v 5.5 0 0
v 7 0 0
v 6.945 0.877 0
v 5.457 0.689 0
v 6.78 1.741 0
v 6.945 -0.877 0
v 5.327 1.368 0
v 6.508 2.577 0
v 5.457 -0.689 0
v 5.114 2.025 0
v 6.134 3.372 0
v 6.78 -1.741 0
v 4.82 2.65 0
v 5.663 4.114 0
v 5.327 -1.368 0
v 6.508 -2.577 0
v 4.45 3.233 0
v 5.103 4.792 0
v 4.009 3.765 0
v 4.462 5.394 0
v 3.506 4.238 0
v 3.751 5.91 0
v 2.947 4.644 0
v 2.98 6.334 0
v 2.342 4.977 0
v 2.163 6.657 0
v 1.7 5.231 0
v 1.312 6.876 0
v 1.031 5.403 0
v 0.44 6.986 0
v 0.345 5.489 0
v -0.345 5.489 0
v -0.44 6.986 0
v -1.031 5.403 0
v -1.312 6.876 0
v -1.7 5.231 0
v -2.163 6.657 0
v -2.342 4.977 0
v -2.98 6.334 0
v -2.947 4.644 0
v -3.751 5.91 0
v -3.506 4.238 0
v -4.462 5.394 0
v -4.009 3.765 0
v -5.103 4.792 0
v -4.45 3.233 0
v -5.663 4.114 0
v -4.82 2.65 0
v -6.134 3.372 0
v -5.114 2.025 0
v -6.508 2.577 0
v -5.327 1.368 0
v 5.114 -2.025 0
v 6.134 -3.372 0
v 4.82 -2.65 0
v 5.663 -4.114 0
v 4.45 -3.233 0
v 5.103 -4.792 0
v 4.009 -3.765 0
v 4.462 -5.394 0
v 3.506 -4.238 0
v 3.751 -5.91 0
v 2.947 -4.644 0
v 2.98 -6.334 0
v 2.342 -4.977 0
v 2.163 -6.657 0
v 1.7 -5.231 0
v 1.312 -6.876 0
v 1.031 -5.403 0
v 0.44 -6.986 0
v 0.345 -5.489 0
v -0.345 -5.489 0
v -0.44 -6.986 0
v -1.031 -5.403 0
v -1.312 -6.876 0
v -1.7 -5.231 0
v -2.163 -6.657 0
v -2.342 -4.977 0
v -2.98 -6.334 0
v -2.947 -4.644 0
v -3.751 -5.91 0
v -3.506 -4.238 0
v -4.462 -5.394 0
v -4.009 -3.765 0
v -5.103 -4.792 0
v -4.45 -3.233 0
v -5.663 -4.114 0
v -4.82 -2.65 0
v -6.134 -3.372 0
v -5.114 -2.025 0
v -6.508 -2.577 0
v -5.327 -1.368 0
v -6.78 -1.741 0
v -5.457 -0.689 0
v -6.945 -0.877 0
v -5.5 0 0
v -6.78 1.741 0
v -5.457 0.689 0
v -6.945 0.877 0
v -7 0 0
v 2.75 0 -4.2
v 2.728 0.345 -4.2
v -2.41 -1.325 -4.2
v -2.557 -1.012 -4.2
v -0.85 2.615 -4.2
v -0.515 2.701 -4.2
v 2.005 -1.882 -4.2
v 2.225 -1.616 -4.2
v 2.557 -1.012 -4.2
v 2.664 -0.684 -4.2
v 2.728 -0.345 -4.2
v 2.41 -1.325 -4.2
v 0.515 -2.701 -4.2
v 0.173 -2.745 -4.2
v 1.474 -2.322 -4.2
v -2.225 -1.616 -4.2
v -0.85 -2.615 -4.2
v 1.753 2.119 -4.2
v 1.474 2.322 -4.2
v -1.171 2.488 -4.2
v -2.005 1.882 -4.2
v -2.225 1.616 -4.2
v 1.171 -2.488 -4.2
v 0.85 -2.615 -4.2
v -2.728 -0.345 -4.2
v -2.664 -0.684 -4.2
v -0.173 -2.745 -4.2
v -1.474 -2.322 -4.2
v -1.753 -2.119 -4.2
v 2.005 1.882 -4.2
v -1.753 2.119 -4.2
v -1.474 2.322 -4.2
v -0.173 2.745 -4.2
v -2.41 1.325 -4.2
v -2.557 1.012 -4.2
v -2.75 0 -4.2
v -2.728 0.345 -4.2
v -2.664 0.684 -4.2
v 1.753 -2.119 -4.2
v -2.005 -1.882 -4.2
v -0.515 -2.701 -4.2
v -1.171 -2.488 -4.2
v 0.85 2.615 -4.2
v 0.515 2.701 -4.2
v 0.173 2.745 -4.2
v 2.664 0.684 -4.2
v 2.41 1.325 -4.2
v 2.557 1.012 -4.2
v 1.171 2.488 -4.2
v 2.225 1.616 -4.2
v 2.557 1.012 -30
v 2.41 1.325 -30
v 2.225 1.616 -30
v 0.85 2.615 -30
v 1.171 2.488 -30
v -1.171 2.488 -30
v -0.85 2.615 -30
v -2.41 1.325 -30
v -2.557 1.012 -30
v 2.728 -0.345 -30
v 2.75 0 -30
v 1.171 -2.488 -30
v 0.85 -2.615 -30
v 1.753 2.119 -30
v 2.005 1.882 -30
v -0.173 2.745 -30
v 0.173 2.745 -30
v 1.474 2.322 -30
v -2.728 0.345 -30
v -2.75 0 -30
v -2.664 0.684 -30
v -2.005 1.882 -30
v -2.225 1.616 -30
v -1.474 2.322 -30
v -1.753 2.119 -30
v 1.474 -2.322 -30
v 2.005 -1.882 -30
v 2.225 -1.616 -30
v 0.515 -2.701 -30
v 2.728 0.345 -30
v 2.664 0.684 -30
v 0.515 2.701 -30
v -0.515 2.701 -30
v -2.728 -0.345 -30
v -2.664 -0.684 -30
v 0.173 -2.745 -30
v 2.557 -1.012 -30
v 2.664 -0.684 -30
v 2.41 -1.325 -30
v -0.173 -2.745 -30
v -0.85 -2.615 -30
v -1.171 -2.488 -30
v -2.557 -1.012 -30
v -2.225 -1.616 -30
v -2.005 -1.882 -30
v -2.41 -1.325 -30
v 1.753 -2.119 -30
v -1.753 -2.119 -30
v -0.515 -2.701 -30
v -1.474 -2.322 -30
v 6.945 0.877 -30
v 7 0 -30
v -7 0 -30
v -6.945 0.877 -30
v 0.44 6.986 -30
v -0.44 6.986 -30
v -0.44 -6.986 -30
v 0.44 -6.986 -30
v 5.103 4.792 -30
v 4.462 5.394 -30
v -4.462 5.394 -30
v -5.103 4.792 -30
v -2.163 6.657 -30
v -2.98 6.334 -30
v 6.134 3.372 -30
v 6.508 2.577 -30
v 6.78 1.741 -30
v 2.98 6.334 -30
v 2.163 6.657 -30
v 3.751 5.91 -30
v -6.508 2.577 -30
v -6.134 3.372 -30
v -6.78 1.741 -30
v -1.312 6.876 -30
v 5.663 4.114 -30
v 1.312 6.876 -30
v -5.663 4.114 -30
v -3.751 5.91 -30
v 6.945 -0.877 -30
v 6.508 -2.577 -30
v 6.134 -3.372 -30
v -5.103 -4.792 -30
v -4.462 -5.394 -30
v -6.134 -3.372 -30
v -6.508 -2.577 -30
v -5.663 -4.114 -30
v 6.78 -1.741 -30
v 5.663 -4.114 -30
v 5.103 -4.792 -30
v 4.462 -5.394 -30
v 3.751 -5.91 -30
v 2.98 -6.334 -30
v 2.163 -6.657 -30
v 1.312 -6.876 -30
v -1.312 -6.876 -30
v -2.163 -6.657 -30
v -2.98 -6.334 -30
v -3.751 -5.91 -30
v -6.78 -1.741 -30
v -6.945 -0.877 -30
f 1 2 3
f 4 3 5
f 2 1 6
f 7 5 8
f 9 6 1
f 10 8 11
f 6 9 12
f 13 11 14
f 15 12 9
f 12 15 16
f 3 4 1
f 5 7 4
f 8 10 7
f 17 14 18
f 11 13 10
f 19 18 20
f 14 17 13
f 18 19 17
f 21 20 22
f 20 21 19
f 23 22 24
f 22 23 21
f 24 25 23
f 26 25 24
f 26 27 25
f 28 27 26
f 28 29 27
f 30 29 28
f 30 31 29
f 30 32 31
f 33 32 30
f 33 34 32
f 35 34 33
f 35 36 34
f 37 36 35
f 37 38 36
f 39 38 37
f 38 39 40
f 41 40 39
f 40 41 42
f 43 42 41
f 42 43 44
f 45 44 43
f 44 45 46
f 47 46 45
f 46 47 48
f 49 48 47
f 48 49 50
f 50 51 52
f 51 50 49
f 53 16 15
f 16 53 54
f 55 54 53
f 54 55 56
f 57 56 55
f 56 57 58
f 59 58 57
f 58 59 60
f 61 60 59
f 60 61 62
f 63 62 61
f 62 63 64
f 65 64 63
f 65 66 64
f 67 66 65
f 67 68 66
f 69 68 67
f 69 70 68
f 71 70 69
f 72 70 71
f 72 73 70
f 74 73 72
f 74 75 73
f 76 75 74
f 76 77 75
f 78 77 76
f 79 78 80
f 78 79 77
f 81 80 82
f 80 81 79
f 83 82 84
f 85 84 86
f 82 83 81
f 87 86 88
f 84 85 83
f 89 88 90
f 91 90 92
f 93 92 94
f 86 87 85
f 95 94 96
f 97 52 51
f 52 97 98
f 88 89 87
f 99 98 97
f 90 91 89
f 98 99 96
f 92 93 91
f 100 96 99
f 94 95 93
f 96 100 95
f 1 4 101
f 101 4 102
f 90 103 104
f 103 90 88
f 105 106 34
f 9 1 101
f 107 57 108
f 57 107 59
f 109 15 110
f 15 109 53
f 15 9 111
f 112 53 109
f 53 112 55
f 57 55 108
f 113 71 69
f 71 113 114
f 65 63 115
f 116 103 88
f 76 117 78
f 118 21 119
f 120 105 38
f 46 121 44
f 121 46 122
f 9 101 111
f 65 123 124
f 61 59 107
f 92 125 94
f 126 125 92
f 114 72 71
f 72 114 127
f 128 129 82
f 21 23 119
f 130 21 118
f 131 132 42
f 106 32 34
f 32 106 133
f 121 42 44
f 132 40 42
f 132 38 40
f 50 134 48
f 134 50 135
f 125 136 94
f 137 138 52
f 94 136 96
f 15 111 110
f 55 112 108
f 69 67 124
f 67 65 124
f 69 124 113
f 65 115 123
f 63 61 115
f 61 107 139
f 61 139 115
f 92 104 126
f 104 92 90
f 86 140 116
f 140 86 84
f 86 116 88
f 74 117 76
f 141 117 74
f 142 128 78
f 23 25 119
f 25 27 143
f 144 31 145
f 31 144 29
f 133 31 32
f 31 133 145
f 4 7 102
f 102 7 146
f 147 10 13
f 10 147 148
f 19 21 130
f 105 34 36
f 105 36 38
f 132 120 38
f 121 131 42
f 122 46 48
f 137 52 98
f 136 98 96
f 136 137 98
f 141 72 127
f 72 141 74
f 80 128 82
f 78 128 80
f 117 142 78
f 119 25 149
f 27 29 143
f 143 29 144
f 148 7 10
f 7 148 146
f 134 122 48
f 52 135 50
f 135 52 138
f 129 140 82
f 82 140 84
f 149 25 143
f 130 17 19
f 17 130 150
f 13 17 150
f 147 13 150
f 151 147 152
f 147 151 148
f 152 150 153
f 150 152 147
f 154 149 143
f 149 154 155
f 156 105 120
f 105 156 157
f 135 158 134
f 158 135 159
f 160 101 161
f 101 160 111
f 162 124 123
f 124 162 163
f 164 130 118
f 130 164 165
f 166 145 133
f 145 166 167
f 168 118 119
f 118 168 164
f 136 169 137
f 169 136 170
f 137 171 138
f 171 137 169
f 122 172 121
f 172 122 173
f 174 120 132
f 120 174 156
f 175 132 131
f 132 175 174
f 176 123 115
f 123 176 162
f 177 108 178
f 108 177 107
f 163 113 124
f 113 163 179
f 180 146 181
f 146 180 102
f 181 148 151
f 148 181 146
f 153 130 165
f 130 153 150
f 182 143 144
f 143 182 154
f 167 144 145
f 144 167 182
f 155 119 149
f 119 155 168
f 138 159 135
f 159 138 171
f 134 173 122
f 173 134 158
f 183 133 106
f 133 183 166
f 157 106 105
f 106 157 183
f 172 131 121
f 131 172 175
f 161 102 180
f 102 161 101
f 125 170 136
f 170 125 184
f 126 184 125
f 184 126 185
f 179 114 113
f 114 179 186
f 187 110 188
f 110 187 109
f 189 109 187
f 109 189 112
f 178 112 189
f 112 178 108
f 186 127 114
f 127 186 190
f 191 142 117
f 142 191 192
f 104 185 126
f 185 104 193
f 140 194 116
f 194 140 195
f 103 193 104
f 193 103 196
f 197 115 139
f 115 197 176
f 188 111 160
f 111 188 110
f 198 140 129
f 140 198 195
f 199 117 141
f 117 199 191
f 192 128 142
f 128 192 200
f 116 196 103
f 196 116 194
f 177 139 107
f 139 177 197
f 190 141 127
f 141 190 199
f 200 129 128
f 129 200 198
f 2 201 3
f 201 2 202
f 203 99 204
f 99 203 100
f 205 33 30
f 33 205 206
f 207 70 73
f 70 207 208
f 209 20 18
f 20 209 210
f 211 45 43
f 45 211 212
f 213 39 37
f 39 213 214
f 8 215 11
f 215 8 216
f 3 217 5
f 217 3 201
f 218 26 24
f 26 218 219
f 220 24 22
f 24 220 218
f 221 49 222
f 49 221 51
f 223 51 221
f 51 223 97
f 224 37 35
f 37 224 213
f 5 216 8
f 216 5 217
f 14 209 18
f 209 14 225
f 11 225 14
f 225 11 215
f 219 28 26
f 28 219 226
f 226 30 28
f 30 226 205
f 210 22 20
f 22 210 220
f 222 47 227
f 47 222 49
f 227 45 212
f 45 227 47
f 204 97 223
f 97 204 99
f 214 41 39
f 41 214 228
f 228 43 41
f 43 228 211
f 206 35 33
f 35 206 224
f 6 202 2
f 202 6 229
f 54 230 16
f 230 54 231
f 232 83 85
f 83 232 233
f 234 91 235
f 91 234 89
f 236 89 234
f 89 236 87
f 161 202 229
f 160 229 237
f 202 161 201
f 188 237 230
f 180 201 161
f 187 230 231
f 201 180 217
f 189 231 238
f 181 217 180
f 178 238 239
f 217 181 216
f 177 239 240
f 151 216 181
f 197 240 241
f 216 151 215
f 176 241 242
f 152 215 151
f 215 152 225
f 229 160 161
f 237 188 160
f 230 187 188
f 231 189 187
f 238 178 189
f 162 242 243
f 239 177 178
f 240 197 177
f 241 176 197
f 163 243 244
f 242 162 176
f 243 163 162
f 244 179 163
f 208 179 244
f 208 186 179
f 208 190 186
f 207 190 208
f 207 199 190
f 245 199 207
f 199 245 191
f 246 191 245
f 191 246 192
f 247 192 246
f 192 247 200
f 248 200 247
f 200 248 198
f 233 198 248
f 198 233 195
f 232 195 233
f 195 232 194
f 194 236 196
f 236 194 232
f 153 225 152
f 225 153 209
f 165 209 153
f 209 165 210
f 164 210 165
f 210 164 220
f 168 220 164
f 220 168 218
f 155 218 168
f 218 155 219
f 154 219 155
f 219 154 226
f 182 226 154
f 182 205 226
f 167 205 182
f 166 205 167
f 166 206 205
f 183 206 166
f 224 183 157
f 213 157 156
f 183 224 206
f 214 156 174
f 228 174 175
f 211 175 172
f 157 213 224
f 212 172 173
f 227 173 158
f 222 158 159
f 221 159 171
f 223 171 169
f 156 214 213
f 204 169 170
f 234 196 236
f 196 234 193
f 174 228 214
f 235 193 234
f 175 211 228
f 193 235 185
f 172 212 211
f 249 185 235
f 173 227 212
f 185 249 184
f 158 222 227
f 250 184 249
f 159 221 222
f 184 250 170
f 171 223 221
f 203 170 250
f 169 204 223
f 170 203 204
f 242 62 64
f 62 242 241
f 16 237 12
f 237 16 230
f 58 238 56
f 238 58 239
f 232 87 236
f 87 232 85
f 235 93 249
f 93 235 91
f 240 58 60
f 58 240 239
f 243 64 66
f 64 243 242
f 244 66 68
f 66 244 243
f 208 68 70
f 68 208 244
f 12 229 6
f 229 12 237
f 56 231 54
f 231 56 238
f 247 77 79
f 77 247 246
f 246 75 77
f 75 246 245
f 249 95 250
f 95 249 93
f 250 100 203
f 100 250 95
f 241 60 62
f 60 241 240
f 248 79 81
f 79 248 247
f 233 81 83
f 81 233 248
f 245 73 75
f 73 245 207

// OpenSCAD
$fn = 50;

difference() {
	union() {
		translate(v = [0, 0, -30.0]) {
			cylinder(h = 30, r = 7.0);
		}
	}
	union() {
		translate(v = [0, 0, 0]) {
			rotate(a = [0, 0, 0]) {
				difference() {
					union() {
						translate(v = [0, 0, -33.0]) {
							cylinder(h = 33, r = 2.25);
						}
						translate(v = [0, 0, -4.2]) {
							cylinder(h = 4.2, r1 = 2.75, r2 = 5.5);
						}
						translate(v = [0, 0, -33.0]) {
							cylinder(h = 33, r = 2.75);
						}
						translate(v = [0, 0, -33.0]) {
							cylinder(h = 33, r = 2.25);
						}
					}
					union();
				}
			}
		}
	}
}
